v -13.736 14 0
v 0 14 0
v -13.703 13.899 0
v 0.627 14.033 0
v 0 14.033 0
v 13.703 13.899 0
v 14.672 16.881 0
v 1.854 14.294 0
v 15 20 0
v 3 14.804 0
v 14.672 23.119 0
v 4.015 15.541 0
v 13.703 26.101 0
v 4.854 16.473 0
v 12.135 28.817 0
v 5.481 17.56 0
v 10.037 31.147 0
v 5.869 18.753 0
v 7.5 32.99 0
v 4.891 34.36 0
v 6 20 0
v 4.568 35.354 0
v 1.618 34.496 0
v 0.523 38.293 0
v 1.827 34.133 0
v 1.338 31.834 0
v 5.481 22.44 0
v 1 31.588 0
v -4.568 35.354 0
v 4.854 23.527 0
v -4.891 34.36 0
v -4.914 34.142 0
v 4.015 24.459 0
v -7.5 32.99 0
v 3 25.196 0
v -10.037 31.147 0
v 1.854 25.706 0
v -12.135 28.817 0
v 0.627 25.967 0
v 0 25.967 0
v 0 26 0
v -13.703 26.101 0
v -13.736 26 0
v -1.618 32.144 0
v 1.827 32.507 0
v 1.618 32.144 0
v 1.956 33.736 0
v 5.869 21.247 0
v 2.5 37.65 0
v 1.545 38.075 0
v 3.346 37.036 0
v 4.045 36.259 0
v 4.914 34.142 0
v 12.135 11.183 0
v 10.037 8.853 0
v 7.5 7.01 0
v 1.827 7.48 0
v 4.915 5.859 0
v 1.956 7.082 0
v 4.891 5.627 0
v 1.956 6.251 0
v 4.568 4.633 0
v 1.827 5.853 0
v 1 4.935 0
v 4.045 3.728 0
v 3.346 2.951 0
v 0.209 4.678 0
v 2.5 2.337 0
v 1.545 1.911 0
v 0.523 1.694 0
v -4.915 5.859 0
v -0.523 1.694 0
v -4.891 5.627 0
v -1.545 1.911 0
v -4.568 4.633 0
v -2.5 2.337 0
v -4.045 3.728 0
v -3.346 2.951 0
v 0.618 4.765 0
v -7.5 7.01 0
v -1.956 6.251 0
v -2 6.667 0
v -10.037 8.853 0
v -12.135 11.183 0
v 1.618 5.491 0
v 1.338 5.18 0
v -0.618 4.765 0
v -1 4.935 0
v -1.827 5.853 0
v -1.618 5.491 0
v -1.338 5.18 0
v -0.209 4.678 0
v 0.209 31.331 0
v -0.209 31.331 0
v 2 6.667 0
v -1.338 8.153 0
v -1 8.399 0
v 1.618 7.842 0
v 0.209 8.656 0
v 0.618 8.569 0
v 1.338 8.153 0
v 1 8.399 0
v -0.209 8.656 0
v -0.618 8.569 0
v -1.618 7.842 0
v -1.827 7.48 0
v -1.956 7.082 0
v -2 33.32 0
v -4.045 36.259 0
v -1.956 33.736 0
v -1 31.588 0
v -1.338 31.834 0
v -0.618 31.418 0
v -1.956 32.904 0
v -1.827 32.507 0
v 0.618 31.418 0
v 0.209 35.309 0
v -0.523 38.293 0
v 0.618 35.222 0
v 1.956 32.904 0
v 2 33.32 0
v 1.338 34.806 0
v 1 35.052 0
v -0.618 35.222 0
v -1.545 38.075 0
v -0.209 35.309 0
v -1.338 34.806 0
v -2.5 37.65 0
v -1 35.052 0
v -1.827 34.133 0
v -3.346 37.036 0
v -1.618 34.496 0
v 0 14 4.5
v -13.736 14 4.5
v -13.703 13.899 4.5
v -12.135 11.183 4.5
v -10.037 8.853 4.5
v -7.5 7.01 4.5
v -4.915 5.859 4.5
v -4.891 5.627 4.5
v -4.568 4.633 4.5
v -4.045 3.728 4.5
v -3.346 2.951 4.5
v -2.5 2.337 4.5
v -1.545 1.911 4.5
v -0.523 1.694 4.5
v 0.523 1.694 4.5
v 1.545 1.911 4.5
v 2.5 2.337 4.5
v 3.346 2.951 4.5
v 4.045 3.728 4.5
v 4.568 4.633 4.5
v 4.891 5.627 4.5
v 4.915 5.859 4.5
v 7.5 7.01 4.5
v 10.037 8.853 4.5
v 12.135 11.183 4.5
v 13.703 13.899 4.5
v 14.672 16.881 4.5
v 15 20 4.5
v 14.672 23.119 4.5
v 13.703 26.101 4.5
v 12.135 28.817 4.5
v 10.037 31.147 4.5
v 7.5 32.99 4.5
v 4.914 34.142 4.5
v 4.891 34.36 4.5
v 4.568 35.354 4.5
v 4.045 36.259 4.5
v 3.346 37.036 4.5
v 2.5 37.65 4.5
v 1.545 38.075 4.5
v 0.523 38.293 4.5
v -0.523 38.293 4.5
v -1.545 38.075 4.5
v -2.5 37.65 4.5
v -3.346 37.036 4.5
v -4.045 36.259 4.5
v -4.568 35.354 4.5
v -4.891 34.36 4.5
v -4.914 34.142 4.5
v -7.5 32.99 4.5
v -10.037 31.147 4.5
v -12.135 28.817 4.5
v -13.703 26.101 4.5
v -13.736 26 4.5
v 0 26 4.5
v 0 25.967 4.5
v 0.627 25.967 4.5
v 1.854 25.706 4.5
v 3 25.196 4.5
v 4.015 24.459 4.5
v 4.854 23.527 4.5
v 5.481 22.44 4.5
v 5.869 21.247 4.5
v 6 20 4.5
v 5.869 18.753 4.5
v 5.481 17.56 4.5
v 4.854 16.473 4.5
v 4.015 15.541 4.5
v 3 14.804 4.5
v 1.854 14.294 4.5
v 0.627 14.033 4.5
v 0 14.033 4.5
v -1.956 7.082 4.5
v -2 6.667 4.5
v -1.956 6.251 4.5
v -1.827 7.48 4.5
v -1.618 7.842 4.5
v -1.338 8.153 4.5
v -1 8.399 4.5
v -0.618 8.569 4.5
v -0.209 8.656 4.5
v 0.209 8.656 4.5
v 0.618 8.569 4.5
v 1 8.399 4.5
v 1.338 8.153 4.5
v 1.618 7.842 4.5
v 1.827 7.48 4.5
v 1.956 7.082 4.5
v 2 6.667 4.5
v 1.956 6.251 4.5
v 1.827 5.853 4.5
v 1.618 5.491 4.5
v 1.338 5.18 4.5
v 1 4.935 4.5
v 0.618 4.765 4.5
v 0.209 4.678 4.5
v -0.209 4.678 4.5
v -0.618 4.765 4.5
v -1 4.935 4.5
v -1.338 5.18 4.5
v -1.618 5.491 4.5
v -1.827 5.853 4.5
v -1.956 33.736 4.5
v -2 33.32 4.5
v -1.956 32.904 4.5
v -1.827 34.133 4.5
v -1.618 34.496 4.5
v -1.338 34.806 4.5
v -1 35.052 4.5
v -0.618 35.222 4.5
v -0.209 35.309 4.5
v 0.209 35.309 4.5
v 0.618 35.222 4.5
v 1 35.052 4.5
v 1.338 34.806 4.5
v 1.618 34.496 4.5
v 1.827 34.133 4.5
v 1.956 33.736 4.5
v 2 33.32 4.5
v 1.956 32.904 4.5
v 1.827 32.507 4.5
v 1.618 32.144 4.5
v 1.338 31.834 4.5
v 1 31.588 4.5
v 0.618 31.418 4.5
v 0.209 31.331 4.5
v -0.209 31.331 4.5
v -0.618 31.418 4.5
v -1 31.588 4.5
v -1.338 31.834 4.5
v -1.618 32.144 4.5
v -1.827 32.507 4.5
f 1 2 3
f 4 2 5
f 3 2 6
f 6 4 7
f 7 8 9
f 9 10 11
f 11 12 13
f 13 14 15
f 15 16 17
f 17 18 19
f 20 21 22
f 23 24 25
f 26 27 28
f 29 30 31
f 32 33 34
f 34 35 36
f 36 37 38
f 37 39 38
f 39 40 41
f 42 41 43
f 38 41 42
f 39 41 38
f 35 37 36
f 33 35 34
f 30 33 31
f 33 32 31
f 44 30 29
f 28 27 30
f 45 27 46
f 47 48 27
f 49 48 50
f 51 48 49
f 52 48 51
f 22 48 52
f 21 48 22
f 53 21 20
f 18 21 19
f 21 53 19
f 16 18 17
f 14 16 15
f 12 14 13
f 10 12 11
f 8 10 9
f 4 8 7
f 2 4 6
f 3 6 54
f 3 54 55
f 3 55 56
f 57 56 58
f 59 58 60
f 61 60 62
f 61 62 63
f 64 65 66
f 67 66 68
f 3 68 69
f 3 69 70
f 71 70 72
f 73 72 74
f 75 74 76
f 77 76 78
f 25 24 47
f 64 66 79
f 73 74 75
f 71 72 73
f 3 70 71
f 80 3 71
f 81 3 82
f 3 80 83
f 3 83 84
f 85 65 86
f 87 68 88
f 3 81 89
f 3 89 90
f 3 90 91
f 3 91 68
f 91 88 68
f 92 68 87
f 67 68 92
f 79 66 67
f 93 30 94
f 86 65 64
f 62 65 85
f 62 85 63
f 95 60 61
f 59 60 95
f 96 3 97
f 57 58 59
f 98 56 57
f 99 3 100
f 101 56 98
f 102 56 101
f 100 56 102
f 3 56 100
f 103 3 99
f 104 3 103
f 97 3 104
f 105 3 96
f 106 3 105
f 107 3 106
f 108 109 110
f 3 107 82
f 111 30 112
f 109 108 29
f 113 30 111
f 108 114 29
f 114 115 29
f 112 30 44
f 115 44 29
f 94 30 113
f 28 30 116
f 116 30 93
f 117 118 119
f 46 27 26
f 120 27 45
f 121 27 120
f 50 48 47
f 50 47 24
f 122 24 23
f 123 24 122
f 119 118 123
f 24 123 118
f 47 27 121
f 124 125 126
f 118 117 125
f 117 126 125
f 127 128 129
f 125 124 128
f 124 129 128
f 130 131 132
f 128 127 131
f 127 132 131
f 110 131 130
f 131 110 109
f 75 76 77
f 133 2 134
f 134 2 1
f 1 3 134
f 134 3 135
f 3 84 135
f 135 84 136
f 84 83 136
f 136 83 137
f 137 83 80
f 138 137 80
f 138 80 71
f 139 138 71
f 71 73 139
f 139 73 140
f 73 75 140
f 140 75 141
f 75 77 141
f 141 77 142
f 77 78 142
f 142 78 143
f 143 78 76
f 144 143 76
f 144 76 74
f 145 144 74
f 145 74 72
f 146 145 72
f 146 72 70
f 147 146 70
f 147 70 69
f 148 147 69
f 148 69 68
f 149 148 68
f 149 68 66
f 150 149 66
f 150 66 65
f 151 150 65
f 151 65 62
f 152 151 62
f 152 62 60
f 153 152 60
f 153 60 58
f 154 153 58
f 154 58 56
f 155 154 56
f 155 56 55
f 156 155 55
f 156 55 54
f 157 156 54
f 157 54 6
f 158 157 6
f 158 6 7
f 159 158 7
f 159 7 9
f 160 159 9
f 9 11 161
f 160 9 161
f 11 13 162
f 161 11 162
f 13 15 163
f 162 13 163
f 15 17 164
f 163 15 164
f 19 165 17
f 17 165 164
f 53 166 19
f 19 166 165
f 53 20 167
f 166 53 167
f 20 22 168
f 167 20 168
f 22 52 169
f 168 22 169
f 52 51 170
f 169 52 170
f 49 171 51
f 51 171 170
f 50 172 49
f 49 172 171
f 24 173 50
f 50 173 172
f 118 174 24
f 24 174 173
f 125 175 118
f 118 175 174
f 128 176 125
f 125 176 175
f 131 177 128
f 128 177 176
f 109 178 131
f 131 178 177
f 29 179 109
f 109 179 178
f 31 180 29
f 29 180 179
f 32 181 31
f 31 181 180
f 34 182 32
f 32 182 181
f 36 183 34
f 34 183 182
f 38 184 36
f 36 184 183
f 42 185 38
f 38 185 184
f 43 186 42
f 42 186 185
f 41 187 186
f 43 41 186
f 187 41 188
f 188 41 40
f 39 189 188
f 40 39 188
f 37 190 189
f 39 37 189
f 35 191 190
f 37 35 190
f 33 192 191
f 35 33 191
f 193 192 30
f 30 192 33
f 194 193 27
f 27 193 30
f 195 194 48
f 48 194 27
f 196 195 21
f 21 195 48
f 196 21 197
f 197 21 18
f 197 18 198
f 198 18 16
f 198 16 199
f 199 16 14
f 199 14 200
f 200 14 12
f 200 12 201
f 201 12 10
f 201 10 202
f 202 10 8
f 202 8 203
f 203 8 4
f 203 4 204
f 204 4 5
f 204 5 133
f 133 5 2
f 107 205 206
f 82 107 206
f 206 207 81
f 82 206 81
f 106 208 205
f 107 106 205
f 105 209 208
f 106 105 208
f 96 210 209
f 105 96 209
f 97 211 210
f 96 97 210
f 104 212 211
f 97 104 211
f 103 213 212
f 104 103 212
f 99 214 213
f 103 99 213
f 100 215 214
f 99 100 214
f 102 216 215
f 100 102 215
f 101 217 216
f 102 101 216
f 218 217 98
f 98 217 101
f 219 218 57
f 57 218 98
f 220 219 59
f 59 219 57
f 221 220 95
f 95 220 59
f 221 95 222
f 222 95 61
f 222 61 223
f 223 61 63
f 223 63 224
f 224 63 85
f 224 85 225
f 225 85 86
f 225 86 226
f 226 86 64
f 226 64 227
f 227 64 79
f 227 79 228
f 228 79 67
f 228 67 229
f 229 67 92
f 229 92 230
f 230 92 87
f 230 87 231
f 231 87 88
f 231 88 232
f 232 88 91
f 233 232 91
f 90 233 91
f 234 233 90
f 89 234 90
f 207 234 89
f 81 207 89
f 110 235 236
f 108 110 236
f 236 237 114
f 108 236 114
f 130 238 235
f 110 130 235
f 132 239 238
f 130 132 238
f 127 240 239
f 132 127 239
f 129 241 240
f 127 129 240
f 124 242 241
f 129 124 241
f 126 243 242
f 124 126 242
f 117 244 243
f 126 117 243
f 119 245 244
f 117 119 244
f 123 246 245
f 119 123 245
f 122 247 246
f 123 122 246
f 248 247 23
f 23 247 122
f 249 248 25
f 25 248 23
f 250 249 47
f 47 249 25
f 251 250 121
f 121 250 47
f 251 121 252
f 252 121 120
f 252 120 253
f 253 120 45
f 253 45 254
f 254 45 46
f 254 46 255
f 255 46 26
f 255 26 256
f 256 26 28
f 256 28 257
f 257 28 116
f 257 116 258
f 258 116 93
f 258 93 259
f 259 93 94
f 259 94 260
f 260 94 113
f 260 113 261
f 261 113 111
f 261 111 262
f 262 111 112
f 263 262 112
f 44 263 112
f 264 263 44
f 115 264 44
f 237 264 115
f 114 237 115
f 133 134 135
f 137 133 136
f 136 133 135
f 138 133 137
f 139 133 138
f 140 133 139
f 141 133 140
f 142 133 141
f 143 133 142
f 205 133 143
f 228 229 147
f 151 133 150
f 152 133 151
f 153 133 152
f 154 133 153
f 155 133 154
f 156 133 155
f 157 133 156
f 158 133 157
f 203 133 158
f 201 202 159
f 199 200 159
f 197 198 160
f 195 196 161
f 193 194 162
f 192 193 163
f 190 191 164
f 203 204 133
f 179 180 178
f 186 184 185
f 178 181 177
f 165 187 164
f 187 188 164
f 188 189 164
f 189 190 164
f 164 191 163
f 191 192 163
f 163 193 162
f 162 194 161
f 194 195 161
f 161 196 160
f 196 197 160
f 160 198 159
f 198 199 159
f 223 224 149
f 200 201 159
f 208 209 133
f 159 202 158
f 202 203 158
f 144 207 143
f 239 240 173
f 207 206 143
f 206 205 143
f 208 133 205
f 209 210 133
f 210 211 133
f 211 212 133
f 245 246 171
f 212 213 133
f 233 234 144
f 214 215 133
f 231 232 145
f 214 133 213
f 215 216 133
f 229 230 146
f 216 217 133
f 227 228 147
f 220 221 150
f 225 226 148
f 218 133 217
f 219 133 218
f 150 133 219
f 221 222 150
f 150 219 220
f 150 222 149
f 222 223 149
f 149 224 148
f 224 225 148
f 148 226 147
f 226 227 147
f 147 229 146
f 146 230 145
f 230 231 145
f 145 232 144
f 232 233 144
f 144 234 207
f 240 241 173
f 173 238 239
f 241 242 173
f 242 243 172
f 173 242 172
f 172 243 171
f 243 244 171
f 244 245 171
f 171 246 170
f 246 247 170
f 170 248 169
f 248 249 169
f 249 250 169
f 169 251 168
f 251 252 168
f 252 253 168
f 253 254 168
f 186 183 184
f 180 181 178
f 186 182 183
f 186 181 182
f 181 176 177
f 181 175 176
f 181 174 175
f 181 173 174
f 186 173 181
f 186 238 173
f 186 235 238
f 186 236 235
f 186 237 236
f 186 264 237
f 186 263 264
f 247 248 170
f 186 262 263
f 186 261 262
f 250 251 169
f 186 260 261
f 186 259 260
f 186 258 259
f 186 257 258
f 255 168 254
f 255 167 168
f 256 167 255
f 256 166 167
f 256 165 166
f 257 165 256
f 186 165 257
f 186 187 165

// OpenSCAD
// file: config.scad
//This REALLY REALLY needs to get organized. I will start sorting through it ASAP 
// This is the config for an M8 Mendel sized printer.

//Constants (These are used throughout the whole printer)
frameroddia = 8.5; //the frame rod diameter
smoothroddia = 8.5; //the smooth rod diameter
bushingod = 16; //The prusabushing OD, you can change this to 15 to use LM8UU linear bearings 
tapsize = 7; //The size of the hole before tapping. 7mm seems to work well.
nemasize = 1.7; //Nema Size (in imperial)
motorscrew = 4; //Hole diameter for mounting the motor
motorcenter = 23; //center hole size for the motor
nutheight = 7;
nutdia = 14.8;
tapping = true; //turn tapping on/off, not implemented yet. (Version 0.3) Version 0.2 has tapping by default right now

//Frame Vertex
vertexwall = 3;
triangle = 60;

//Y Motor Mount
ymountthick = 9;
ywallmulti = 2; //the wall thickness multiplier for the bits that interface with the frame rod
ymotorwallmulti = 2.4; //multiplier for the motor holes because you might want them thicker
ycenterwallmulti = 1.5; //multiplier for the center hole because you might want them thinner

//Top Piece
motorwallmulti= 1.9;
centerwallmulti = 1.7;
partthick = 8;
toprodwall = 4;
toprodspacing = 72;
siderodwall = 4;

// X End Pieces
xrodspacing = 55; //rod spacing center to center
nutwall = 3; //wall thickness around nut and bushing
towergap= 10; // 0.75 diameter wrap should be ok i think. Make a flag for full wrap and no square for bushings/linear bearings maybe?
// Idler
idlerthick = 4.5; //no
idlerwidth = 4.5; //no
idlergap = 8; //no
//Motor
wallmulti = 1.5; //no
motorwallmulti = 1.7; //no
partthick = 8; //thickness of the motor mount (6 works well, need to decouple from top piece)
centerwallmulti = 1.5; // center motor hole multi

//X Carriage 
carriagewidth = 60;
bushingwall = 3;
backwall = 5;
tools = 2;
tool1dia = 16;
tool2dia = 16;
adapterholedia = 4;
platformthick = 10;
platformextension = 40; 
pulleydia = 12;
beltthick = 2;
clampthick = 4;
clampholedia = 4;

//Extruder

//Groove Mount
	//Default is pretty good for MakerGear insulators
groovedia = 12;
grooveheight = 4.5;

//pen holder 
penwall = 3 ;
holdingscrewdia = 3;
shaftheight = 30;
// main file
include <config.scad>;
$fn = 30;
difference(){
union(){
translate([0,platformextension/6,0])cylinder(r=adapterholedia/2 + penwall,h=grooveheight);
translate([0,platformextension*0.833,0])cylinder(r=adapterholedia/2 + penwall,h=grooveheight);
translate([-adapterholedia/2-penwall,platformextension/6,0])cube([adapterholedia+penwall*2,platformextension*0.66,grooveheight]);
translate([0,platformextension/2,0])cylinder(r = carriagewidth/4, h = grooveheight);
}
translate([-carriagewidth/4,platformextension/2-groovedia/2,-1])cube([carriagewidth/4,groovedia,grooveheight+2]);
translate([0,platformextension/2,-1])cylinder(r = groovedia/2, h = grooveheight+2);
translate([0,platformextension/6,-1])cylinder(r=adapterholedia/2,h=grooveheight+2);
translate([0,platformextension*0.833,-1])cylinder(r=adapterholedia/2,h=grooveheight+2);
}
